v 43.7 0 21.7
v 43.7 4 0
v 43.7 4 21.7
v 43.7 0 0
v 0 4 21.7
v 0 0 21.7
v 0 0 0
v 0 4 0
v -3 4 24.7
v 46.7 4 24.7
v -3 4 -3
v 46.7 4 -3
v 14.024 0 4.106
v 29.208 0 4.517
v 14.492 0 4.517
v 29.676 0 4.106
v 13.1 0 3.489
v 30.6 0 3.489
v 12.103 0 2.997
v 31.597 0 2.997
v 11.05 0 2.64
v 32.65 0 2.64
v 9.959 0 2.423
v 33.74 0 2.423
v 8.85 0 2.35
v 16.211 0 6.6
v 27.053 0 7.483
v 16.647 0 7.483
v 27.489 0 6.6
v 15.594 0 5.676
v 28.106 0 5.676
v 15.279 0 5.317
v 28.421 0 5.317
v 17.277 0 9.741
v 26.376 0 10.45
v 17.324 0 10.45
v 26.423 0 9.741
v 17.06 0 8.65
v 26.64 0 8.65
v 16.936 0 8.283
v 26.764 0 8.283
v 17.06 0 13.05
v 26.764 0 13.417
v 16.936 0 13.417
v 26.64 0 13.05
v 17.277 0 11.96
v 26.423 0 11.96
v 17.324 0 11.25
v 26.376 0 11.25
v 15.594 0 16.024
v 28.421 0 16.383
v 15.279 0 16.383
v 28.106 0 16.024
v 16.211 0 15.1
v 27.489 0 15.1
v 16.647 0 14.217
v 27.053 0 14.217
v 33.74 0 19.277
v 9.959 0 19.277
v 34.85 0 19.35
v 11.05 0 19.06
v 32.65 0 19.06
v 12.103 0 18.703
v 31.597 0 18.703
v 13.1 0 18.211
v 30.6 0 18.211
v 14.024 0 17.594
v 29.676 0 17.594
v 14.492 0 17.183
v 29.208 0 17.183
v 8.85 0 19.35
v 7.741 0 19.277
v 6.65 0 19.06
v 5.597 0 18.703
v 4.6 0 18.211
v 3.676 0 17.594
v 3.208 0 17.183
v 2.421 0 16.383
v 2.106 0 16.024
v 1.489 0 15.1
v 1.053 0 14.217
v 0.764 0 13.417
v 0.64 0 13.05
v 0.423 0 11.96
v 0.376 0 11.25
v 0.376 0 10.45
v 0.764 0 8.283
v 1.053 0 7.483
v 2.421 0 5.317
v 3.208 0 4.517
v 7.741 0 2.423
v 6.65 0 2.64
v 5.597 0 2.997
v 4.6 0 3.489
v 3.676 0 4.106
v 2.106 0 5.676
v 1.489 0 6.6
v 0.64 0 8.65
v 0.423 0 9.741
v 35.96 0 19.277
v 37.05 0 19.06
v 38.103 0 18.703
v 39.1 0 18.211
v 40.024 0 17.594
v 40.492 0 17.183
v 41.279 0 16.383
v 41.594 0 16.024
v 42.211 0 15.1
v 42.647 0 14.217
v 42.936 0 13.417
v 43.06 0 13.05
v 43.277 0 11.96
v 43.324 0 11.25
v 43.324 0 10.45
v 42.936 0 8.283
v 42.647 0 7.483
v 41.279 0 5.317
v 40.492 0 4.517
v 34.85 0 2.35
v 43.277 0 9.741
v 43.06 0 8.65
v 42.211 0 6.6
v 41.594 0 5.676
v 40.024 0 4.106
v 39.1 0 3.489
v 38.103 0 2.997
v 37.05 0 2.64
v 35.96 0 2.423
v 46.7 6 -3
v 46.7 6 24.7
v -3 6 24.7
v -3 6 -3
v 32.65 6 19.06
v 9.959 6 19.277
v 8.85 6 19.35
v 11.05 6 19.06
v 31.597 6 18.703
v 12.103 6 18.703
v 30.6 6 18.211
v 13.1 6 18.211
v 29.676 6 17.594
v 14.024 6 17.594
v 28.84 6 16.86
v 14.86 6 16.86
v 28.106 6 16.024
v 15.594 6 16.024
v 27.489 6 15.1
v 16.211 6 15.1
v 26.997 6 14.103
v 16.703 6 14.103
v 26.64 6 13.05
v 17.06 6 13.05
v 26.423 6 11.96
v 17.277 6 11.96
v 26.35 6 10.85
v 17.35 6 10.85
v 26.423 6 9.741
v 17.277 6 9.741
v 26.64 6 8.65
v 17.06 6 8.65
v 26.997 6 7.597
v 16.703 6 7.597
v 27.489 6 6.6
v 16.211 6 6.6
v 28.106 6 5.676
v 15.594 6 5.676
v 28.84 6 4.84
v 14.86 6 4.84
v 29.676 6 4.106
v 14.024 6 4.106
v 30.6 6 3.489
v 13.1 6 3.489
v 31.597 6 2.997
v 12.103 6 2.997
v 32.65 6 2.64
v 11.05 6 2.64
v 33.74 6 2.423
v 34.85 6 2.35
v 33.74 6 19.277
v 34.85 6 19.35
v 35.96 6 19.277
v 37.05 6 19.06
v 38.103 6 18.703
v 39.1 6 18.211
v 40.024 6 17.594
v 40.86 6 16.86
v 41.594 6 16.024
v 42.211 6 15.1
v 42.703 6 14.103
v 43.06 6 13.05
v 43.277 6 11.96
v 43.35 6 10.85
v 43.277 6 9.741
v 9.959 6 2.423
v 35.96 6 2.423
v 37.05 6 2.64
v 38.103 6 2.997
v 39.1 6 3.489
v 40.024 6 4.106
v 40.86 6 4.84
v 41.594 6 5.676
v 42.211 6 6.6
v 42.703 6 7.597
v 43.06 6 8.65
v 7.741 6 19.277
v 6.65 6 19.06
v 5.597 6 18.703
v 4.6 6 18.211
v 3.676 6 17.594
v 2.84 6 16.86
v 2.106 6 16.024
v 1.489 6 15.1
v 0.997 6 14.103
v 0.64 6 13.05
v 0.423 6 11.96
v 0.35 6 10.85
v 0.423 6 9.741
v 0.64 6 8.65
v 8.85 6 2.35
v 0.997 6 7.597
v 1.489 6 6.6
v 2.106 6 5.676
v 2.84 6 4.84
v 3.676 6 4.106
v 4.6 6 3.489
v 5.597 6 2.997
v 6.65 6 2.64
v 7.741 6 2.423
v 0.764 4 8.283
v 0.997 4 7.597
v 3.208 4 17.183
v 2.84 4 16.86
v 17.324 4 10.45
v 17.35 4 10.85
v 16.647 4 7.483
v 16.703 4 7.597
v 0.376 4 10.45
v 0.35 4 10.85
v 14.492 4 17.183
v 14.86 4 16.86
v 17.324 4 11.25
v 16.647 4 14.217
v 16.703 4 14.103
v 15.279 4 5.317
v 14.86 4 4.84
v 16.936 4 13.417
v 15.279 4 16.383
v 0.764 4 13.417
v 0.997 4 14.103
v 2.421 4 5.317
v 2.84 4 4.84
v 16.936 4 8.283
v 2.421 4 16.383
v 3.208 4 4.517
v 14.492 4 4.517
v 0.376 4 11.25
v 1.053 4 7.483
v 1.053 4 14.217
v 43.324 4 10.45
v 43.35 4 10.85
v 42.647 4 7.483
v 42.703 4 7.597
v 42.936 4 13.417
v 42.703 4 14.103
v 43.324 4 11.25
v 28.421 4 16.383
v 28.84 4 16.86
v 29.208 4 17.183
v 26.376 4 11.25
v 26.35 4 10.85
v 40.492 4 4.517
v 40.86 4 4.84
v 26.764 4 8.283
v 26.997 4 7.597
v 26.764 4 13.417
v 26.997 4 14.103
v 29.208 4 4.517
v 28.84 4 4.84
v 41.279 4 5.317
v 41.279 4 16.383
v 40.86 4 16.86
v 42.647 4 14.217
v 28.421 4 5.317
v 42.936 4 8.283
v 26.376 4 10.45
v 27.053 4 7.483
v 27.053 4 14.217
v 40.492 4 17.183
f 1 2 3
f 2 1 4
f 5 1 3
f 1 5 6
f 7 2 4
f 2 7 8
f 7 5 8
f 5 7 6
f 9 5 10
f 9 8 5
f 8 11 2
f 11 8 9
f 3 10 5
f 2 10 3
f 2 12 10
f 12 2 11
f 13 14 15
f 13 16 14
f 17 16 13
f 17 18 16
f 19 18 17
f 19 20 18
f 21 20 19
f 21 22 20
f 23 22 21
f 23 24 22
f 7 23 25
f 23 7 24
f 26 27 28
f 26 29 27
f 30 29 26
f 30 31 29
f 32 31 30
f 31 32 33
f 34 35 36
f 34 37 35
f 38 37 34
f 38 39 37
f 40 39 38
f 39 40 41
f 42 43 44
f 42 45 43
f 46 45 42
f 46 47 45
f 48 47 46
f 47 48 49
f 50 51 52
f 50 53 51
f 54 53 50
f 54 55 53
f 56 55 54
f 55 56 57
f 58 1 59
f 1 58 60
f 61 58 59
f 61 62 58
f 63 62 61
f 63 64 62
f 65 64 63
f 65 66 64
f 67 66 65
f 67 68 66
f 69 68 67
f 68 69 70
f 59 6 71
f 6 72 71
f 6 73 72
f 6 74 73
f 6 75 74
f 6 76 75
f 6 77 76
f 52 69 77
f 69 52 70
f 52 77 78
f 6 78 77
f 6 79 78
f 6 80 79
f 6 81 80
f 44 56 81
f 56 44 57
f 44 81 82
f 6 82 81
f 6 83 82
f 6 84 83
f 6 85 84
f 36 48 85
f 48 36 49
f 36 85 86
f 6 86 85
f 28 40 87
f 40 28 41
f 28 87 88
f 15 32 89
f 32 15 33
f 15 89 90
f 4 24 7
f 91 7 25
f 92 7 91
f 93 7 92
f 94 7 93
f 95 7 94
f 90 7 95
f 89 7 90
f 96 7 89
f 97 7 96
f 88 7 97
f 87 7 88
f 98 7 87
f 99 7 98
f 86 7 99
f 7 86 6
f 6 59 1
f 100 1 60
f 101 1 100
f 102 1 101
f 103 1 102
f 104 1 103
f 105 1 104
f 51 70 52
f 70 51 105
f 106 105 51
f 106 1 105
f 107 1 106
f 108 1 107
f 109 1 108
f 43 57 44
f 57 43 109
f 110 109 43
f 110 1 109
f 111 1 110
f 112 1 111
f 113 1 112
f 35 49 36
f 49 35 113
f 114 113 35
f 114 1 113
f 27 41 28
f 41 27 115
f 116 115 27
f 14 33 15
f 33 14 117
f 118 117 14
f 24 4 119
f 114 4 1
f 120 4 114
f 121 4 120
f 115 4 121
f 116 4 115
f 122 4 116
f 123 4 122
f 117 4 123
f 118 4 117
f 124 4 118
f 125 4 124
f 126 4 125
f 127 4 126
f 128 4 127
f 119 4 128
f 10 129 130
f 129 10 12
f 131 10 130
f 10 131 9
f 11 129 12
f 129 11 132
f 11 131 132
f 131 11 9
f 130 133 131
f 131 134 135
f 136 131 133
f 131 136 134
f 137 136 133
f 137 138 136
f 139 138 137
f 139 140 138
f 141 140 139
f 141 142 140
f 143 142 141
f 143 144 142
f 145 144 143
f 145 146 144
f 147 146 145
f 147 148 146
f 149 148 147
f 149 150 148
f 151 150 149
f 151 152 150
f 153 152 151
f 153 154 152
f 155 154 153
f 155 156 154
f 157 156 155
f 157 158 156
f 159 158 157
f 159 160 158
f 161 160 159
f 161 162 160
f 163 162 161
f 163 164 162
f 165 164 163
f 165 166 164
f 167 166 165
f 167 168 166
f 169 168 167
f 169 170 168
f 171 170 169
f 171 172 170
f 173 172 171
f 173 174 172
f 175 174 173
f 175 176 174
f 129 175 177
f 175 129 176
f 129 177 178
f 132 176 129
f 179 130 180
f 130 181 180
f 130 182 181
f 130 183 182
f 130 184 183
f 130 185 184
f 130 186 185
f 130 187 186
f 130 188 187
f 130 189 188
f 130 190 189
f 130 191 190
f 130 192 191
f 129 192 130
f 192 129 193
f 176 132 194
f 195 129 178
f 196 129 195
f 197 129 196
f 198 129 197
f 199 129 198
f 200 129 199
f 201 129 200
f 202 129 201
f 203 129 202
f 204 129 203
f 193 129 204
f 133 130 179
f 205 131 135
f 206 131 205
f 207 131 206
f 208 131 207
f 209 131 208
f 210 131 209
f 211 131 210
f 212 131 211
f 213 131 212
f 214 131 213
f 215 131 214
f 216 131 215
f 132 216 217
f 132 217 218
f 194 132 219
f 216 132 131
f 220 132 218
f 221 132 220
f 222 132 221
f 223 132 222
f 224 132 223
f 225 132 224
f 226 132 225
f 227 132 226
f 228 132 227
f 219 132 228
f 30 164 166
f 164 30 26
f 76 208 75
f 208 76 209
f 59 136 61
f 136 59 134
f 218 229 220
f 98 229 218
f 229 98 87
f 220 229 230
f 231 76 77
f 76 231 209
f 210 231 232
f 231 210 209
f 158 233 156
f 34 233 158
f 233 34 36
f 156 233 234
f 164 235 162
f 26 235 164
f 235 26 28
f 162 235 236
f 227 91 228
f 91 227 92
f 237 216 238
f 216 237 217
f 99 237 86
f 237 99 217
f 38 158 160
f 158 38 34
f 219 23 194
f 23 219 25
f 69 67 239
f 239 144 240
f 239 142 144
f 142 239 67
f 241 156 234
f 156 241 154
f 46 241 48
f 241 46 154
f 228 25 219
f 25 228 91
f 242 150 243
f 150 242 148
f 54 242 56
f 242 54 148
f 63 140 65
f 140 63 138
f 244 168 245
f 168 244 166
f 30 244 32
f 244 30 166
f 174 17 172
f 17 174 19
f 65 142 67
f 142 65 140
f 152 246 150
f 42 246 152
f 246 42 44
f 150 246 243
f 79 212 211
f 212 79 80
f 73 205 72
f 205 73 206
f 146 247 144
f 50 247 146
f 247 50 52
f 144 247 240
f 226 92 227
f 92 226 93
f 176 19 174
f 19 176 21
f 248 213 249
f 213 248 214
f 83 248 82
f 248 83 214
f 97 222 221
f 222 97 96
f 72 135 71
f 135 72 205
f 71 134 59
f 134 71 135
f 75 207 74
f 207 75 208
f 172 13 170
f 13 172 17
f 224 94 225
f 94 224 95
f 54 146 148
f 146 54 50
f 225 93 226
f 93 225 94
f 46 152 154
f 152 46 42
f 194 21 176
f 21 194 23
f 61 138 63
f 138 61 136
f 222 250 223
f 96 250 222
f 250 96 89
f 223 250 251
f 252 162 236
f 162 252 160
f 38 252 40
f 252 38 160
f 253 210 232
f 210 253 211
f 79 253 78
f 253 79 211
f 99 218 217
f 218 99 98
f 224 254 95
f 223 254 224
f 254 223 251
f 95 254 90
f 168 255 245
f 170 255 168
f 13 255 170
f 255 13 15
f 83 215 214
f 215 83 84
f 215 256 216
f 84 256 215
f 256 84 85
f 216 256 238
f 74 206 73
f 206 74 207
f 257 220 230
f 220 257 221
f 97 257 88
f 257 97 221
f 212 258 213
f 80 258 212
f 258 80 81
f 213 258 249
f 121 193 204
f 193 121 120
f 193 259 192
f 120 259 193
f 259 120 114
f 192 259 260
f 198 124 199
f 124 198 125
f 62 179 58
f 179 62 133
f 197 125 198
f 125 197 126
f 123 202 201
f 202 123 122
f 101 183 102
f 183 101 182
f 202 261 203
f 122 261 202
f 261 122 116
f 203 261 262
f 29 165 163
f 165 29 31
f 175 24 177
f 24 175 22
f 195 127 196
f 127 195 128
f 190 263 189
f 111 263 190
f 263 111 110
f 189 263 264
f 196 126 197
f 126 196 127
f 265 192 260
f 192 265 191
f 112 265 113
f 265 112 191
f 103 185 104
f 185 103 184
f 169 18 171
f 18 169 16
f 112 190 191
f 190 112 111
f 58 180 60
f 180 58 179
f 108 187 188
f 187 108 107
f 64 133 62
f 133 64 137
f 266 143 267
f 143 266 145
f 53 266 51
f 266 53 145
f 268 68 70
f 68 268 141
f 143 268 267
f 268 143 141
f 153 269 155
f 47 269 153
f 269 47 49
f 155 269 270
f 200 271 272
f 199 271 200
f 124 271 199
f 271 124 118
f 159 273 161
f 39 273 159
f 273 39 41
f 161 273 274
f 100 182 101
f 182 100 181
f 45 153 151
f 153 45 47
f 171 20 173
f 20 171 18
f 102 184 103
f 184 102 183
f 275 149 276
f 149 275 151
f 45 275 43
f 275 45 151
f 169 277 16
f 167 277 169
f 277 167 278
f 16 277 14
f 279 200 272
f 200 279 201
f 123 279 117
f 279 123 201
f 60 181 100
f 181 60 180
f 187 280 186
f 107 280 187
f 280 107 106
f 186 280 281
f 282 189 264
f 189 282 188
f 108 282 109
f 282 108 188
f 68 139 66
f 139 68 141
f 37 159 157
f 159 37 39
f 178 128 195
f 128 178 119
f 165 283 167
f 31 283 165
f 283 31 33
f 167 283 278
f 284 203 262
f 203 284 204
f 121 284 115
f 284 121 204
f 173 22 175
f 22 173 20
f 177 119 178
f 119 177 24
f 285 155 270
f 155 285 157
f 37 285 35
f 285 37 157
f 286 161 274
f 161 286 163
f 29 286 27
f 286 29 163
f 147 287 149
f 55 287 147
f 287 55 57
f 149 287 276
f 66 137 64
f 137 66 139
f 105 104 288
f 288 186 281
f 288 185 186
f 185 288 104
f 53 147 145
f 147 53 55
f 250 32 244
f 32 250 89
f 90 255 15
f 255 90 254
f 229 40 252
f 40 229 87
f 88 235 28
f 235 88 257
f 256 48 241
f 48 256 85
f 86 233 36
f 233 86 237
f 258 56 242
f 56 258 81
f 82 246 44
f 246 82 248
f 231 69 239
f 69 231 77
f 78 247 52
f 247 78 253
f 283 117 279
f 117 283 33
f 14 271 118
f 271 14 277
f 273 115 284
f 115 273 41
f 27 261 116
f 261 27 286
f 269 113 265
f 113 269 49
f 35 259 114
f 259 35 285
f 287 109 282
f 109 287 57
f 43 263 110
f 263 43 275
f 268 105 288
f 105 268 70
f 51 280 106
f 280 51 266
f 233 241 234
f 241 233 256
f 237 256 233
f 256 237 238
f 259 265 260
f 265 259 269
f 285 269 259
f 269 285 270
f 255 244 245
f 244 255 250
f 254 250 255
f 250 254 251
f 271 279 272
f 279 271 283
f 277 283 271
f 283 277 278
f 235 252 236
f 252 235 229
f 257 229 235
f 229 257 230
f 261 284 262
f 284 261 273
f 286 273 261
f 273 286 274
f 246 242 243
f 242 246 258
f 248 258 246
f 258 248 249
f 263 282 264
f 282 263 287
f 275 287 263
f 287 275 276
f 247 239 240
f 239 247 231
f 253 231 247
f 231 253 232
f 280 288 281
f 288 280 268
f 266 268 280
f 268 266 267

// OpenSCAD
// ============================================================
//  MSE-6 — Ultrasonic Aperture Grille
//  Press-fit insert for shell front wall.
//  Two circular windows align with HC-SR04 transducer cans.
//  Horizontal louvres block light/debris while passing sound.
//
//  HC-SR04 cans: Ø16mm, 26mm centre-to-centre
//  Sensor position on deck: roughly centred X on shell front wall
//  Shell front wall: X=81–127 (46mm wide), Z=10–43 (33mm tall)
//
//  Install: press into a 44×22mm rectangular cutout in the shell
//           front wall. Flange stops flush with outer face.
// ============================================================
$fn = 48;

// Aperture cutout in shell wall
aperture_w  = 44.0;    // wide enough for both cans + surround
aperture_h  = 22.0;    // tall enough for can OD + margin
wall_t      =  4.0;    // shell wall thickness

// Press-fit body
body_w      = aperture_w - 0.3;
body_h      = aperture_h - 0.3;
body_d      = wall_t;

// Interior flange
flange_ow   =  3.0;    // flange overhang each side
flange_t    =  2.0;

// HC-SR04 can windows
can_d       = 17.0;    // window diameter (Ø16mm can + 1mm clearance)
can_spacing = 26.0;    // centre-to-centre
can_cx      = body_w / 2;   // centred on grille
can_cy      = body_h / 2;

// Louvre parameters
louv_n      = 5;       // number of louvre bars across each window
louv_t      = 0.8;     // bar thickness (printable at 0.4mm nozzle)
louv_gap    = (can_d - louv_n * louv_t) / (louv_n + 1);

module can_window(cx, cy) {
    // Clear cylinder
    translate([cx, -0.1, cy])
        rotate([-90, 0, 0])
            cylinder(d = can_d, h = body_d + flange_t + 0.2);
}

module louvre_mask(cx, cy) {
    // Subtract to leave bars — actually ADD bars over the window
    // We build bars as thin rectangular strips across the window circle
    for (i = [0 : louv_n-1]) {
        bar_z = cy - can_d/2 + louv_gap*(i+1) + louv_t*i;
        translate([cx - can_d/2, -0.05, bar_z])
            cube([can_d, body_d + 0.1, louv_t]);
    }
}

module grille() {
    difference() {
        union() {
            // Press-fit body
            cube([body_w, body_d, body_h]);
            // Interior flange
            translate([-flange_ow, body_d, -flange_ow])
                cube([body_w + flange_ow*2, flange_t,
                      body_h + flange_ow*2]);
        }

        // Two can windows
        can_window(can_cx - can_spacing/2, can_cy);
        can_window(can_cx + can_spacing/2, can_cy);
    }

    // Add louvre bars back inside the windows
    intersection() {
        union() {
            louvre_mask(can_cx - can_spacing/2, can_cy);
            louvre_mask(can_cx + can_spacing/2, can_cy);
        }
        cube([body_w, body_d, body_h]);
    }
}

grille();
